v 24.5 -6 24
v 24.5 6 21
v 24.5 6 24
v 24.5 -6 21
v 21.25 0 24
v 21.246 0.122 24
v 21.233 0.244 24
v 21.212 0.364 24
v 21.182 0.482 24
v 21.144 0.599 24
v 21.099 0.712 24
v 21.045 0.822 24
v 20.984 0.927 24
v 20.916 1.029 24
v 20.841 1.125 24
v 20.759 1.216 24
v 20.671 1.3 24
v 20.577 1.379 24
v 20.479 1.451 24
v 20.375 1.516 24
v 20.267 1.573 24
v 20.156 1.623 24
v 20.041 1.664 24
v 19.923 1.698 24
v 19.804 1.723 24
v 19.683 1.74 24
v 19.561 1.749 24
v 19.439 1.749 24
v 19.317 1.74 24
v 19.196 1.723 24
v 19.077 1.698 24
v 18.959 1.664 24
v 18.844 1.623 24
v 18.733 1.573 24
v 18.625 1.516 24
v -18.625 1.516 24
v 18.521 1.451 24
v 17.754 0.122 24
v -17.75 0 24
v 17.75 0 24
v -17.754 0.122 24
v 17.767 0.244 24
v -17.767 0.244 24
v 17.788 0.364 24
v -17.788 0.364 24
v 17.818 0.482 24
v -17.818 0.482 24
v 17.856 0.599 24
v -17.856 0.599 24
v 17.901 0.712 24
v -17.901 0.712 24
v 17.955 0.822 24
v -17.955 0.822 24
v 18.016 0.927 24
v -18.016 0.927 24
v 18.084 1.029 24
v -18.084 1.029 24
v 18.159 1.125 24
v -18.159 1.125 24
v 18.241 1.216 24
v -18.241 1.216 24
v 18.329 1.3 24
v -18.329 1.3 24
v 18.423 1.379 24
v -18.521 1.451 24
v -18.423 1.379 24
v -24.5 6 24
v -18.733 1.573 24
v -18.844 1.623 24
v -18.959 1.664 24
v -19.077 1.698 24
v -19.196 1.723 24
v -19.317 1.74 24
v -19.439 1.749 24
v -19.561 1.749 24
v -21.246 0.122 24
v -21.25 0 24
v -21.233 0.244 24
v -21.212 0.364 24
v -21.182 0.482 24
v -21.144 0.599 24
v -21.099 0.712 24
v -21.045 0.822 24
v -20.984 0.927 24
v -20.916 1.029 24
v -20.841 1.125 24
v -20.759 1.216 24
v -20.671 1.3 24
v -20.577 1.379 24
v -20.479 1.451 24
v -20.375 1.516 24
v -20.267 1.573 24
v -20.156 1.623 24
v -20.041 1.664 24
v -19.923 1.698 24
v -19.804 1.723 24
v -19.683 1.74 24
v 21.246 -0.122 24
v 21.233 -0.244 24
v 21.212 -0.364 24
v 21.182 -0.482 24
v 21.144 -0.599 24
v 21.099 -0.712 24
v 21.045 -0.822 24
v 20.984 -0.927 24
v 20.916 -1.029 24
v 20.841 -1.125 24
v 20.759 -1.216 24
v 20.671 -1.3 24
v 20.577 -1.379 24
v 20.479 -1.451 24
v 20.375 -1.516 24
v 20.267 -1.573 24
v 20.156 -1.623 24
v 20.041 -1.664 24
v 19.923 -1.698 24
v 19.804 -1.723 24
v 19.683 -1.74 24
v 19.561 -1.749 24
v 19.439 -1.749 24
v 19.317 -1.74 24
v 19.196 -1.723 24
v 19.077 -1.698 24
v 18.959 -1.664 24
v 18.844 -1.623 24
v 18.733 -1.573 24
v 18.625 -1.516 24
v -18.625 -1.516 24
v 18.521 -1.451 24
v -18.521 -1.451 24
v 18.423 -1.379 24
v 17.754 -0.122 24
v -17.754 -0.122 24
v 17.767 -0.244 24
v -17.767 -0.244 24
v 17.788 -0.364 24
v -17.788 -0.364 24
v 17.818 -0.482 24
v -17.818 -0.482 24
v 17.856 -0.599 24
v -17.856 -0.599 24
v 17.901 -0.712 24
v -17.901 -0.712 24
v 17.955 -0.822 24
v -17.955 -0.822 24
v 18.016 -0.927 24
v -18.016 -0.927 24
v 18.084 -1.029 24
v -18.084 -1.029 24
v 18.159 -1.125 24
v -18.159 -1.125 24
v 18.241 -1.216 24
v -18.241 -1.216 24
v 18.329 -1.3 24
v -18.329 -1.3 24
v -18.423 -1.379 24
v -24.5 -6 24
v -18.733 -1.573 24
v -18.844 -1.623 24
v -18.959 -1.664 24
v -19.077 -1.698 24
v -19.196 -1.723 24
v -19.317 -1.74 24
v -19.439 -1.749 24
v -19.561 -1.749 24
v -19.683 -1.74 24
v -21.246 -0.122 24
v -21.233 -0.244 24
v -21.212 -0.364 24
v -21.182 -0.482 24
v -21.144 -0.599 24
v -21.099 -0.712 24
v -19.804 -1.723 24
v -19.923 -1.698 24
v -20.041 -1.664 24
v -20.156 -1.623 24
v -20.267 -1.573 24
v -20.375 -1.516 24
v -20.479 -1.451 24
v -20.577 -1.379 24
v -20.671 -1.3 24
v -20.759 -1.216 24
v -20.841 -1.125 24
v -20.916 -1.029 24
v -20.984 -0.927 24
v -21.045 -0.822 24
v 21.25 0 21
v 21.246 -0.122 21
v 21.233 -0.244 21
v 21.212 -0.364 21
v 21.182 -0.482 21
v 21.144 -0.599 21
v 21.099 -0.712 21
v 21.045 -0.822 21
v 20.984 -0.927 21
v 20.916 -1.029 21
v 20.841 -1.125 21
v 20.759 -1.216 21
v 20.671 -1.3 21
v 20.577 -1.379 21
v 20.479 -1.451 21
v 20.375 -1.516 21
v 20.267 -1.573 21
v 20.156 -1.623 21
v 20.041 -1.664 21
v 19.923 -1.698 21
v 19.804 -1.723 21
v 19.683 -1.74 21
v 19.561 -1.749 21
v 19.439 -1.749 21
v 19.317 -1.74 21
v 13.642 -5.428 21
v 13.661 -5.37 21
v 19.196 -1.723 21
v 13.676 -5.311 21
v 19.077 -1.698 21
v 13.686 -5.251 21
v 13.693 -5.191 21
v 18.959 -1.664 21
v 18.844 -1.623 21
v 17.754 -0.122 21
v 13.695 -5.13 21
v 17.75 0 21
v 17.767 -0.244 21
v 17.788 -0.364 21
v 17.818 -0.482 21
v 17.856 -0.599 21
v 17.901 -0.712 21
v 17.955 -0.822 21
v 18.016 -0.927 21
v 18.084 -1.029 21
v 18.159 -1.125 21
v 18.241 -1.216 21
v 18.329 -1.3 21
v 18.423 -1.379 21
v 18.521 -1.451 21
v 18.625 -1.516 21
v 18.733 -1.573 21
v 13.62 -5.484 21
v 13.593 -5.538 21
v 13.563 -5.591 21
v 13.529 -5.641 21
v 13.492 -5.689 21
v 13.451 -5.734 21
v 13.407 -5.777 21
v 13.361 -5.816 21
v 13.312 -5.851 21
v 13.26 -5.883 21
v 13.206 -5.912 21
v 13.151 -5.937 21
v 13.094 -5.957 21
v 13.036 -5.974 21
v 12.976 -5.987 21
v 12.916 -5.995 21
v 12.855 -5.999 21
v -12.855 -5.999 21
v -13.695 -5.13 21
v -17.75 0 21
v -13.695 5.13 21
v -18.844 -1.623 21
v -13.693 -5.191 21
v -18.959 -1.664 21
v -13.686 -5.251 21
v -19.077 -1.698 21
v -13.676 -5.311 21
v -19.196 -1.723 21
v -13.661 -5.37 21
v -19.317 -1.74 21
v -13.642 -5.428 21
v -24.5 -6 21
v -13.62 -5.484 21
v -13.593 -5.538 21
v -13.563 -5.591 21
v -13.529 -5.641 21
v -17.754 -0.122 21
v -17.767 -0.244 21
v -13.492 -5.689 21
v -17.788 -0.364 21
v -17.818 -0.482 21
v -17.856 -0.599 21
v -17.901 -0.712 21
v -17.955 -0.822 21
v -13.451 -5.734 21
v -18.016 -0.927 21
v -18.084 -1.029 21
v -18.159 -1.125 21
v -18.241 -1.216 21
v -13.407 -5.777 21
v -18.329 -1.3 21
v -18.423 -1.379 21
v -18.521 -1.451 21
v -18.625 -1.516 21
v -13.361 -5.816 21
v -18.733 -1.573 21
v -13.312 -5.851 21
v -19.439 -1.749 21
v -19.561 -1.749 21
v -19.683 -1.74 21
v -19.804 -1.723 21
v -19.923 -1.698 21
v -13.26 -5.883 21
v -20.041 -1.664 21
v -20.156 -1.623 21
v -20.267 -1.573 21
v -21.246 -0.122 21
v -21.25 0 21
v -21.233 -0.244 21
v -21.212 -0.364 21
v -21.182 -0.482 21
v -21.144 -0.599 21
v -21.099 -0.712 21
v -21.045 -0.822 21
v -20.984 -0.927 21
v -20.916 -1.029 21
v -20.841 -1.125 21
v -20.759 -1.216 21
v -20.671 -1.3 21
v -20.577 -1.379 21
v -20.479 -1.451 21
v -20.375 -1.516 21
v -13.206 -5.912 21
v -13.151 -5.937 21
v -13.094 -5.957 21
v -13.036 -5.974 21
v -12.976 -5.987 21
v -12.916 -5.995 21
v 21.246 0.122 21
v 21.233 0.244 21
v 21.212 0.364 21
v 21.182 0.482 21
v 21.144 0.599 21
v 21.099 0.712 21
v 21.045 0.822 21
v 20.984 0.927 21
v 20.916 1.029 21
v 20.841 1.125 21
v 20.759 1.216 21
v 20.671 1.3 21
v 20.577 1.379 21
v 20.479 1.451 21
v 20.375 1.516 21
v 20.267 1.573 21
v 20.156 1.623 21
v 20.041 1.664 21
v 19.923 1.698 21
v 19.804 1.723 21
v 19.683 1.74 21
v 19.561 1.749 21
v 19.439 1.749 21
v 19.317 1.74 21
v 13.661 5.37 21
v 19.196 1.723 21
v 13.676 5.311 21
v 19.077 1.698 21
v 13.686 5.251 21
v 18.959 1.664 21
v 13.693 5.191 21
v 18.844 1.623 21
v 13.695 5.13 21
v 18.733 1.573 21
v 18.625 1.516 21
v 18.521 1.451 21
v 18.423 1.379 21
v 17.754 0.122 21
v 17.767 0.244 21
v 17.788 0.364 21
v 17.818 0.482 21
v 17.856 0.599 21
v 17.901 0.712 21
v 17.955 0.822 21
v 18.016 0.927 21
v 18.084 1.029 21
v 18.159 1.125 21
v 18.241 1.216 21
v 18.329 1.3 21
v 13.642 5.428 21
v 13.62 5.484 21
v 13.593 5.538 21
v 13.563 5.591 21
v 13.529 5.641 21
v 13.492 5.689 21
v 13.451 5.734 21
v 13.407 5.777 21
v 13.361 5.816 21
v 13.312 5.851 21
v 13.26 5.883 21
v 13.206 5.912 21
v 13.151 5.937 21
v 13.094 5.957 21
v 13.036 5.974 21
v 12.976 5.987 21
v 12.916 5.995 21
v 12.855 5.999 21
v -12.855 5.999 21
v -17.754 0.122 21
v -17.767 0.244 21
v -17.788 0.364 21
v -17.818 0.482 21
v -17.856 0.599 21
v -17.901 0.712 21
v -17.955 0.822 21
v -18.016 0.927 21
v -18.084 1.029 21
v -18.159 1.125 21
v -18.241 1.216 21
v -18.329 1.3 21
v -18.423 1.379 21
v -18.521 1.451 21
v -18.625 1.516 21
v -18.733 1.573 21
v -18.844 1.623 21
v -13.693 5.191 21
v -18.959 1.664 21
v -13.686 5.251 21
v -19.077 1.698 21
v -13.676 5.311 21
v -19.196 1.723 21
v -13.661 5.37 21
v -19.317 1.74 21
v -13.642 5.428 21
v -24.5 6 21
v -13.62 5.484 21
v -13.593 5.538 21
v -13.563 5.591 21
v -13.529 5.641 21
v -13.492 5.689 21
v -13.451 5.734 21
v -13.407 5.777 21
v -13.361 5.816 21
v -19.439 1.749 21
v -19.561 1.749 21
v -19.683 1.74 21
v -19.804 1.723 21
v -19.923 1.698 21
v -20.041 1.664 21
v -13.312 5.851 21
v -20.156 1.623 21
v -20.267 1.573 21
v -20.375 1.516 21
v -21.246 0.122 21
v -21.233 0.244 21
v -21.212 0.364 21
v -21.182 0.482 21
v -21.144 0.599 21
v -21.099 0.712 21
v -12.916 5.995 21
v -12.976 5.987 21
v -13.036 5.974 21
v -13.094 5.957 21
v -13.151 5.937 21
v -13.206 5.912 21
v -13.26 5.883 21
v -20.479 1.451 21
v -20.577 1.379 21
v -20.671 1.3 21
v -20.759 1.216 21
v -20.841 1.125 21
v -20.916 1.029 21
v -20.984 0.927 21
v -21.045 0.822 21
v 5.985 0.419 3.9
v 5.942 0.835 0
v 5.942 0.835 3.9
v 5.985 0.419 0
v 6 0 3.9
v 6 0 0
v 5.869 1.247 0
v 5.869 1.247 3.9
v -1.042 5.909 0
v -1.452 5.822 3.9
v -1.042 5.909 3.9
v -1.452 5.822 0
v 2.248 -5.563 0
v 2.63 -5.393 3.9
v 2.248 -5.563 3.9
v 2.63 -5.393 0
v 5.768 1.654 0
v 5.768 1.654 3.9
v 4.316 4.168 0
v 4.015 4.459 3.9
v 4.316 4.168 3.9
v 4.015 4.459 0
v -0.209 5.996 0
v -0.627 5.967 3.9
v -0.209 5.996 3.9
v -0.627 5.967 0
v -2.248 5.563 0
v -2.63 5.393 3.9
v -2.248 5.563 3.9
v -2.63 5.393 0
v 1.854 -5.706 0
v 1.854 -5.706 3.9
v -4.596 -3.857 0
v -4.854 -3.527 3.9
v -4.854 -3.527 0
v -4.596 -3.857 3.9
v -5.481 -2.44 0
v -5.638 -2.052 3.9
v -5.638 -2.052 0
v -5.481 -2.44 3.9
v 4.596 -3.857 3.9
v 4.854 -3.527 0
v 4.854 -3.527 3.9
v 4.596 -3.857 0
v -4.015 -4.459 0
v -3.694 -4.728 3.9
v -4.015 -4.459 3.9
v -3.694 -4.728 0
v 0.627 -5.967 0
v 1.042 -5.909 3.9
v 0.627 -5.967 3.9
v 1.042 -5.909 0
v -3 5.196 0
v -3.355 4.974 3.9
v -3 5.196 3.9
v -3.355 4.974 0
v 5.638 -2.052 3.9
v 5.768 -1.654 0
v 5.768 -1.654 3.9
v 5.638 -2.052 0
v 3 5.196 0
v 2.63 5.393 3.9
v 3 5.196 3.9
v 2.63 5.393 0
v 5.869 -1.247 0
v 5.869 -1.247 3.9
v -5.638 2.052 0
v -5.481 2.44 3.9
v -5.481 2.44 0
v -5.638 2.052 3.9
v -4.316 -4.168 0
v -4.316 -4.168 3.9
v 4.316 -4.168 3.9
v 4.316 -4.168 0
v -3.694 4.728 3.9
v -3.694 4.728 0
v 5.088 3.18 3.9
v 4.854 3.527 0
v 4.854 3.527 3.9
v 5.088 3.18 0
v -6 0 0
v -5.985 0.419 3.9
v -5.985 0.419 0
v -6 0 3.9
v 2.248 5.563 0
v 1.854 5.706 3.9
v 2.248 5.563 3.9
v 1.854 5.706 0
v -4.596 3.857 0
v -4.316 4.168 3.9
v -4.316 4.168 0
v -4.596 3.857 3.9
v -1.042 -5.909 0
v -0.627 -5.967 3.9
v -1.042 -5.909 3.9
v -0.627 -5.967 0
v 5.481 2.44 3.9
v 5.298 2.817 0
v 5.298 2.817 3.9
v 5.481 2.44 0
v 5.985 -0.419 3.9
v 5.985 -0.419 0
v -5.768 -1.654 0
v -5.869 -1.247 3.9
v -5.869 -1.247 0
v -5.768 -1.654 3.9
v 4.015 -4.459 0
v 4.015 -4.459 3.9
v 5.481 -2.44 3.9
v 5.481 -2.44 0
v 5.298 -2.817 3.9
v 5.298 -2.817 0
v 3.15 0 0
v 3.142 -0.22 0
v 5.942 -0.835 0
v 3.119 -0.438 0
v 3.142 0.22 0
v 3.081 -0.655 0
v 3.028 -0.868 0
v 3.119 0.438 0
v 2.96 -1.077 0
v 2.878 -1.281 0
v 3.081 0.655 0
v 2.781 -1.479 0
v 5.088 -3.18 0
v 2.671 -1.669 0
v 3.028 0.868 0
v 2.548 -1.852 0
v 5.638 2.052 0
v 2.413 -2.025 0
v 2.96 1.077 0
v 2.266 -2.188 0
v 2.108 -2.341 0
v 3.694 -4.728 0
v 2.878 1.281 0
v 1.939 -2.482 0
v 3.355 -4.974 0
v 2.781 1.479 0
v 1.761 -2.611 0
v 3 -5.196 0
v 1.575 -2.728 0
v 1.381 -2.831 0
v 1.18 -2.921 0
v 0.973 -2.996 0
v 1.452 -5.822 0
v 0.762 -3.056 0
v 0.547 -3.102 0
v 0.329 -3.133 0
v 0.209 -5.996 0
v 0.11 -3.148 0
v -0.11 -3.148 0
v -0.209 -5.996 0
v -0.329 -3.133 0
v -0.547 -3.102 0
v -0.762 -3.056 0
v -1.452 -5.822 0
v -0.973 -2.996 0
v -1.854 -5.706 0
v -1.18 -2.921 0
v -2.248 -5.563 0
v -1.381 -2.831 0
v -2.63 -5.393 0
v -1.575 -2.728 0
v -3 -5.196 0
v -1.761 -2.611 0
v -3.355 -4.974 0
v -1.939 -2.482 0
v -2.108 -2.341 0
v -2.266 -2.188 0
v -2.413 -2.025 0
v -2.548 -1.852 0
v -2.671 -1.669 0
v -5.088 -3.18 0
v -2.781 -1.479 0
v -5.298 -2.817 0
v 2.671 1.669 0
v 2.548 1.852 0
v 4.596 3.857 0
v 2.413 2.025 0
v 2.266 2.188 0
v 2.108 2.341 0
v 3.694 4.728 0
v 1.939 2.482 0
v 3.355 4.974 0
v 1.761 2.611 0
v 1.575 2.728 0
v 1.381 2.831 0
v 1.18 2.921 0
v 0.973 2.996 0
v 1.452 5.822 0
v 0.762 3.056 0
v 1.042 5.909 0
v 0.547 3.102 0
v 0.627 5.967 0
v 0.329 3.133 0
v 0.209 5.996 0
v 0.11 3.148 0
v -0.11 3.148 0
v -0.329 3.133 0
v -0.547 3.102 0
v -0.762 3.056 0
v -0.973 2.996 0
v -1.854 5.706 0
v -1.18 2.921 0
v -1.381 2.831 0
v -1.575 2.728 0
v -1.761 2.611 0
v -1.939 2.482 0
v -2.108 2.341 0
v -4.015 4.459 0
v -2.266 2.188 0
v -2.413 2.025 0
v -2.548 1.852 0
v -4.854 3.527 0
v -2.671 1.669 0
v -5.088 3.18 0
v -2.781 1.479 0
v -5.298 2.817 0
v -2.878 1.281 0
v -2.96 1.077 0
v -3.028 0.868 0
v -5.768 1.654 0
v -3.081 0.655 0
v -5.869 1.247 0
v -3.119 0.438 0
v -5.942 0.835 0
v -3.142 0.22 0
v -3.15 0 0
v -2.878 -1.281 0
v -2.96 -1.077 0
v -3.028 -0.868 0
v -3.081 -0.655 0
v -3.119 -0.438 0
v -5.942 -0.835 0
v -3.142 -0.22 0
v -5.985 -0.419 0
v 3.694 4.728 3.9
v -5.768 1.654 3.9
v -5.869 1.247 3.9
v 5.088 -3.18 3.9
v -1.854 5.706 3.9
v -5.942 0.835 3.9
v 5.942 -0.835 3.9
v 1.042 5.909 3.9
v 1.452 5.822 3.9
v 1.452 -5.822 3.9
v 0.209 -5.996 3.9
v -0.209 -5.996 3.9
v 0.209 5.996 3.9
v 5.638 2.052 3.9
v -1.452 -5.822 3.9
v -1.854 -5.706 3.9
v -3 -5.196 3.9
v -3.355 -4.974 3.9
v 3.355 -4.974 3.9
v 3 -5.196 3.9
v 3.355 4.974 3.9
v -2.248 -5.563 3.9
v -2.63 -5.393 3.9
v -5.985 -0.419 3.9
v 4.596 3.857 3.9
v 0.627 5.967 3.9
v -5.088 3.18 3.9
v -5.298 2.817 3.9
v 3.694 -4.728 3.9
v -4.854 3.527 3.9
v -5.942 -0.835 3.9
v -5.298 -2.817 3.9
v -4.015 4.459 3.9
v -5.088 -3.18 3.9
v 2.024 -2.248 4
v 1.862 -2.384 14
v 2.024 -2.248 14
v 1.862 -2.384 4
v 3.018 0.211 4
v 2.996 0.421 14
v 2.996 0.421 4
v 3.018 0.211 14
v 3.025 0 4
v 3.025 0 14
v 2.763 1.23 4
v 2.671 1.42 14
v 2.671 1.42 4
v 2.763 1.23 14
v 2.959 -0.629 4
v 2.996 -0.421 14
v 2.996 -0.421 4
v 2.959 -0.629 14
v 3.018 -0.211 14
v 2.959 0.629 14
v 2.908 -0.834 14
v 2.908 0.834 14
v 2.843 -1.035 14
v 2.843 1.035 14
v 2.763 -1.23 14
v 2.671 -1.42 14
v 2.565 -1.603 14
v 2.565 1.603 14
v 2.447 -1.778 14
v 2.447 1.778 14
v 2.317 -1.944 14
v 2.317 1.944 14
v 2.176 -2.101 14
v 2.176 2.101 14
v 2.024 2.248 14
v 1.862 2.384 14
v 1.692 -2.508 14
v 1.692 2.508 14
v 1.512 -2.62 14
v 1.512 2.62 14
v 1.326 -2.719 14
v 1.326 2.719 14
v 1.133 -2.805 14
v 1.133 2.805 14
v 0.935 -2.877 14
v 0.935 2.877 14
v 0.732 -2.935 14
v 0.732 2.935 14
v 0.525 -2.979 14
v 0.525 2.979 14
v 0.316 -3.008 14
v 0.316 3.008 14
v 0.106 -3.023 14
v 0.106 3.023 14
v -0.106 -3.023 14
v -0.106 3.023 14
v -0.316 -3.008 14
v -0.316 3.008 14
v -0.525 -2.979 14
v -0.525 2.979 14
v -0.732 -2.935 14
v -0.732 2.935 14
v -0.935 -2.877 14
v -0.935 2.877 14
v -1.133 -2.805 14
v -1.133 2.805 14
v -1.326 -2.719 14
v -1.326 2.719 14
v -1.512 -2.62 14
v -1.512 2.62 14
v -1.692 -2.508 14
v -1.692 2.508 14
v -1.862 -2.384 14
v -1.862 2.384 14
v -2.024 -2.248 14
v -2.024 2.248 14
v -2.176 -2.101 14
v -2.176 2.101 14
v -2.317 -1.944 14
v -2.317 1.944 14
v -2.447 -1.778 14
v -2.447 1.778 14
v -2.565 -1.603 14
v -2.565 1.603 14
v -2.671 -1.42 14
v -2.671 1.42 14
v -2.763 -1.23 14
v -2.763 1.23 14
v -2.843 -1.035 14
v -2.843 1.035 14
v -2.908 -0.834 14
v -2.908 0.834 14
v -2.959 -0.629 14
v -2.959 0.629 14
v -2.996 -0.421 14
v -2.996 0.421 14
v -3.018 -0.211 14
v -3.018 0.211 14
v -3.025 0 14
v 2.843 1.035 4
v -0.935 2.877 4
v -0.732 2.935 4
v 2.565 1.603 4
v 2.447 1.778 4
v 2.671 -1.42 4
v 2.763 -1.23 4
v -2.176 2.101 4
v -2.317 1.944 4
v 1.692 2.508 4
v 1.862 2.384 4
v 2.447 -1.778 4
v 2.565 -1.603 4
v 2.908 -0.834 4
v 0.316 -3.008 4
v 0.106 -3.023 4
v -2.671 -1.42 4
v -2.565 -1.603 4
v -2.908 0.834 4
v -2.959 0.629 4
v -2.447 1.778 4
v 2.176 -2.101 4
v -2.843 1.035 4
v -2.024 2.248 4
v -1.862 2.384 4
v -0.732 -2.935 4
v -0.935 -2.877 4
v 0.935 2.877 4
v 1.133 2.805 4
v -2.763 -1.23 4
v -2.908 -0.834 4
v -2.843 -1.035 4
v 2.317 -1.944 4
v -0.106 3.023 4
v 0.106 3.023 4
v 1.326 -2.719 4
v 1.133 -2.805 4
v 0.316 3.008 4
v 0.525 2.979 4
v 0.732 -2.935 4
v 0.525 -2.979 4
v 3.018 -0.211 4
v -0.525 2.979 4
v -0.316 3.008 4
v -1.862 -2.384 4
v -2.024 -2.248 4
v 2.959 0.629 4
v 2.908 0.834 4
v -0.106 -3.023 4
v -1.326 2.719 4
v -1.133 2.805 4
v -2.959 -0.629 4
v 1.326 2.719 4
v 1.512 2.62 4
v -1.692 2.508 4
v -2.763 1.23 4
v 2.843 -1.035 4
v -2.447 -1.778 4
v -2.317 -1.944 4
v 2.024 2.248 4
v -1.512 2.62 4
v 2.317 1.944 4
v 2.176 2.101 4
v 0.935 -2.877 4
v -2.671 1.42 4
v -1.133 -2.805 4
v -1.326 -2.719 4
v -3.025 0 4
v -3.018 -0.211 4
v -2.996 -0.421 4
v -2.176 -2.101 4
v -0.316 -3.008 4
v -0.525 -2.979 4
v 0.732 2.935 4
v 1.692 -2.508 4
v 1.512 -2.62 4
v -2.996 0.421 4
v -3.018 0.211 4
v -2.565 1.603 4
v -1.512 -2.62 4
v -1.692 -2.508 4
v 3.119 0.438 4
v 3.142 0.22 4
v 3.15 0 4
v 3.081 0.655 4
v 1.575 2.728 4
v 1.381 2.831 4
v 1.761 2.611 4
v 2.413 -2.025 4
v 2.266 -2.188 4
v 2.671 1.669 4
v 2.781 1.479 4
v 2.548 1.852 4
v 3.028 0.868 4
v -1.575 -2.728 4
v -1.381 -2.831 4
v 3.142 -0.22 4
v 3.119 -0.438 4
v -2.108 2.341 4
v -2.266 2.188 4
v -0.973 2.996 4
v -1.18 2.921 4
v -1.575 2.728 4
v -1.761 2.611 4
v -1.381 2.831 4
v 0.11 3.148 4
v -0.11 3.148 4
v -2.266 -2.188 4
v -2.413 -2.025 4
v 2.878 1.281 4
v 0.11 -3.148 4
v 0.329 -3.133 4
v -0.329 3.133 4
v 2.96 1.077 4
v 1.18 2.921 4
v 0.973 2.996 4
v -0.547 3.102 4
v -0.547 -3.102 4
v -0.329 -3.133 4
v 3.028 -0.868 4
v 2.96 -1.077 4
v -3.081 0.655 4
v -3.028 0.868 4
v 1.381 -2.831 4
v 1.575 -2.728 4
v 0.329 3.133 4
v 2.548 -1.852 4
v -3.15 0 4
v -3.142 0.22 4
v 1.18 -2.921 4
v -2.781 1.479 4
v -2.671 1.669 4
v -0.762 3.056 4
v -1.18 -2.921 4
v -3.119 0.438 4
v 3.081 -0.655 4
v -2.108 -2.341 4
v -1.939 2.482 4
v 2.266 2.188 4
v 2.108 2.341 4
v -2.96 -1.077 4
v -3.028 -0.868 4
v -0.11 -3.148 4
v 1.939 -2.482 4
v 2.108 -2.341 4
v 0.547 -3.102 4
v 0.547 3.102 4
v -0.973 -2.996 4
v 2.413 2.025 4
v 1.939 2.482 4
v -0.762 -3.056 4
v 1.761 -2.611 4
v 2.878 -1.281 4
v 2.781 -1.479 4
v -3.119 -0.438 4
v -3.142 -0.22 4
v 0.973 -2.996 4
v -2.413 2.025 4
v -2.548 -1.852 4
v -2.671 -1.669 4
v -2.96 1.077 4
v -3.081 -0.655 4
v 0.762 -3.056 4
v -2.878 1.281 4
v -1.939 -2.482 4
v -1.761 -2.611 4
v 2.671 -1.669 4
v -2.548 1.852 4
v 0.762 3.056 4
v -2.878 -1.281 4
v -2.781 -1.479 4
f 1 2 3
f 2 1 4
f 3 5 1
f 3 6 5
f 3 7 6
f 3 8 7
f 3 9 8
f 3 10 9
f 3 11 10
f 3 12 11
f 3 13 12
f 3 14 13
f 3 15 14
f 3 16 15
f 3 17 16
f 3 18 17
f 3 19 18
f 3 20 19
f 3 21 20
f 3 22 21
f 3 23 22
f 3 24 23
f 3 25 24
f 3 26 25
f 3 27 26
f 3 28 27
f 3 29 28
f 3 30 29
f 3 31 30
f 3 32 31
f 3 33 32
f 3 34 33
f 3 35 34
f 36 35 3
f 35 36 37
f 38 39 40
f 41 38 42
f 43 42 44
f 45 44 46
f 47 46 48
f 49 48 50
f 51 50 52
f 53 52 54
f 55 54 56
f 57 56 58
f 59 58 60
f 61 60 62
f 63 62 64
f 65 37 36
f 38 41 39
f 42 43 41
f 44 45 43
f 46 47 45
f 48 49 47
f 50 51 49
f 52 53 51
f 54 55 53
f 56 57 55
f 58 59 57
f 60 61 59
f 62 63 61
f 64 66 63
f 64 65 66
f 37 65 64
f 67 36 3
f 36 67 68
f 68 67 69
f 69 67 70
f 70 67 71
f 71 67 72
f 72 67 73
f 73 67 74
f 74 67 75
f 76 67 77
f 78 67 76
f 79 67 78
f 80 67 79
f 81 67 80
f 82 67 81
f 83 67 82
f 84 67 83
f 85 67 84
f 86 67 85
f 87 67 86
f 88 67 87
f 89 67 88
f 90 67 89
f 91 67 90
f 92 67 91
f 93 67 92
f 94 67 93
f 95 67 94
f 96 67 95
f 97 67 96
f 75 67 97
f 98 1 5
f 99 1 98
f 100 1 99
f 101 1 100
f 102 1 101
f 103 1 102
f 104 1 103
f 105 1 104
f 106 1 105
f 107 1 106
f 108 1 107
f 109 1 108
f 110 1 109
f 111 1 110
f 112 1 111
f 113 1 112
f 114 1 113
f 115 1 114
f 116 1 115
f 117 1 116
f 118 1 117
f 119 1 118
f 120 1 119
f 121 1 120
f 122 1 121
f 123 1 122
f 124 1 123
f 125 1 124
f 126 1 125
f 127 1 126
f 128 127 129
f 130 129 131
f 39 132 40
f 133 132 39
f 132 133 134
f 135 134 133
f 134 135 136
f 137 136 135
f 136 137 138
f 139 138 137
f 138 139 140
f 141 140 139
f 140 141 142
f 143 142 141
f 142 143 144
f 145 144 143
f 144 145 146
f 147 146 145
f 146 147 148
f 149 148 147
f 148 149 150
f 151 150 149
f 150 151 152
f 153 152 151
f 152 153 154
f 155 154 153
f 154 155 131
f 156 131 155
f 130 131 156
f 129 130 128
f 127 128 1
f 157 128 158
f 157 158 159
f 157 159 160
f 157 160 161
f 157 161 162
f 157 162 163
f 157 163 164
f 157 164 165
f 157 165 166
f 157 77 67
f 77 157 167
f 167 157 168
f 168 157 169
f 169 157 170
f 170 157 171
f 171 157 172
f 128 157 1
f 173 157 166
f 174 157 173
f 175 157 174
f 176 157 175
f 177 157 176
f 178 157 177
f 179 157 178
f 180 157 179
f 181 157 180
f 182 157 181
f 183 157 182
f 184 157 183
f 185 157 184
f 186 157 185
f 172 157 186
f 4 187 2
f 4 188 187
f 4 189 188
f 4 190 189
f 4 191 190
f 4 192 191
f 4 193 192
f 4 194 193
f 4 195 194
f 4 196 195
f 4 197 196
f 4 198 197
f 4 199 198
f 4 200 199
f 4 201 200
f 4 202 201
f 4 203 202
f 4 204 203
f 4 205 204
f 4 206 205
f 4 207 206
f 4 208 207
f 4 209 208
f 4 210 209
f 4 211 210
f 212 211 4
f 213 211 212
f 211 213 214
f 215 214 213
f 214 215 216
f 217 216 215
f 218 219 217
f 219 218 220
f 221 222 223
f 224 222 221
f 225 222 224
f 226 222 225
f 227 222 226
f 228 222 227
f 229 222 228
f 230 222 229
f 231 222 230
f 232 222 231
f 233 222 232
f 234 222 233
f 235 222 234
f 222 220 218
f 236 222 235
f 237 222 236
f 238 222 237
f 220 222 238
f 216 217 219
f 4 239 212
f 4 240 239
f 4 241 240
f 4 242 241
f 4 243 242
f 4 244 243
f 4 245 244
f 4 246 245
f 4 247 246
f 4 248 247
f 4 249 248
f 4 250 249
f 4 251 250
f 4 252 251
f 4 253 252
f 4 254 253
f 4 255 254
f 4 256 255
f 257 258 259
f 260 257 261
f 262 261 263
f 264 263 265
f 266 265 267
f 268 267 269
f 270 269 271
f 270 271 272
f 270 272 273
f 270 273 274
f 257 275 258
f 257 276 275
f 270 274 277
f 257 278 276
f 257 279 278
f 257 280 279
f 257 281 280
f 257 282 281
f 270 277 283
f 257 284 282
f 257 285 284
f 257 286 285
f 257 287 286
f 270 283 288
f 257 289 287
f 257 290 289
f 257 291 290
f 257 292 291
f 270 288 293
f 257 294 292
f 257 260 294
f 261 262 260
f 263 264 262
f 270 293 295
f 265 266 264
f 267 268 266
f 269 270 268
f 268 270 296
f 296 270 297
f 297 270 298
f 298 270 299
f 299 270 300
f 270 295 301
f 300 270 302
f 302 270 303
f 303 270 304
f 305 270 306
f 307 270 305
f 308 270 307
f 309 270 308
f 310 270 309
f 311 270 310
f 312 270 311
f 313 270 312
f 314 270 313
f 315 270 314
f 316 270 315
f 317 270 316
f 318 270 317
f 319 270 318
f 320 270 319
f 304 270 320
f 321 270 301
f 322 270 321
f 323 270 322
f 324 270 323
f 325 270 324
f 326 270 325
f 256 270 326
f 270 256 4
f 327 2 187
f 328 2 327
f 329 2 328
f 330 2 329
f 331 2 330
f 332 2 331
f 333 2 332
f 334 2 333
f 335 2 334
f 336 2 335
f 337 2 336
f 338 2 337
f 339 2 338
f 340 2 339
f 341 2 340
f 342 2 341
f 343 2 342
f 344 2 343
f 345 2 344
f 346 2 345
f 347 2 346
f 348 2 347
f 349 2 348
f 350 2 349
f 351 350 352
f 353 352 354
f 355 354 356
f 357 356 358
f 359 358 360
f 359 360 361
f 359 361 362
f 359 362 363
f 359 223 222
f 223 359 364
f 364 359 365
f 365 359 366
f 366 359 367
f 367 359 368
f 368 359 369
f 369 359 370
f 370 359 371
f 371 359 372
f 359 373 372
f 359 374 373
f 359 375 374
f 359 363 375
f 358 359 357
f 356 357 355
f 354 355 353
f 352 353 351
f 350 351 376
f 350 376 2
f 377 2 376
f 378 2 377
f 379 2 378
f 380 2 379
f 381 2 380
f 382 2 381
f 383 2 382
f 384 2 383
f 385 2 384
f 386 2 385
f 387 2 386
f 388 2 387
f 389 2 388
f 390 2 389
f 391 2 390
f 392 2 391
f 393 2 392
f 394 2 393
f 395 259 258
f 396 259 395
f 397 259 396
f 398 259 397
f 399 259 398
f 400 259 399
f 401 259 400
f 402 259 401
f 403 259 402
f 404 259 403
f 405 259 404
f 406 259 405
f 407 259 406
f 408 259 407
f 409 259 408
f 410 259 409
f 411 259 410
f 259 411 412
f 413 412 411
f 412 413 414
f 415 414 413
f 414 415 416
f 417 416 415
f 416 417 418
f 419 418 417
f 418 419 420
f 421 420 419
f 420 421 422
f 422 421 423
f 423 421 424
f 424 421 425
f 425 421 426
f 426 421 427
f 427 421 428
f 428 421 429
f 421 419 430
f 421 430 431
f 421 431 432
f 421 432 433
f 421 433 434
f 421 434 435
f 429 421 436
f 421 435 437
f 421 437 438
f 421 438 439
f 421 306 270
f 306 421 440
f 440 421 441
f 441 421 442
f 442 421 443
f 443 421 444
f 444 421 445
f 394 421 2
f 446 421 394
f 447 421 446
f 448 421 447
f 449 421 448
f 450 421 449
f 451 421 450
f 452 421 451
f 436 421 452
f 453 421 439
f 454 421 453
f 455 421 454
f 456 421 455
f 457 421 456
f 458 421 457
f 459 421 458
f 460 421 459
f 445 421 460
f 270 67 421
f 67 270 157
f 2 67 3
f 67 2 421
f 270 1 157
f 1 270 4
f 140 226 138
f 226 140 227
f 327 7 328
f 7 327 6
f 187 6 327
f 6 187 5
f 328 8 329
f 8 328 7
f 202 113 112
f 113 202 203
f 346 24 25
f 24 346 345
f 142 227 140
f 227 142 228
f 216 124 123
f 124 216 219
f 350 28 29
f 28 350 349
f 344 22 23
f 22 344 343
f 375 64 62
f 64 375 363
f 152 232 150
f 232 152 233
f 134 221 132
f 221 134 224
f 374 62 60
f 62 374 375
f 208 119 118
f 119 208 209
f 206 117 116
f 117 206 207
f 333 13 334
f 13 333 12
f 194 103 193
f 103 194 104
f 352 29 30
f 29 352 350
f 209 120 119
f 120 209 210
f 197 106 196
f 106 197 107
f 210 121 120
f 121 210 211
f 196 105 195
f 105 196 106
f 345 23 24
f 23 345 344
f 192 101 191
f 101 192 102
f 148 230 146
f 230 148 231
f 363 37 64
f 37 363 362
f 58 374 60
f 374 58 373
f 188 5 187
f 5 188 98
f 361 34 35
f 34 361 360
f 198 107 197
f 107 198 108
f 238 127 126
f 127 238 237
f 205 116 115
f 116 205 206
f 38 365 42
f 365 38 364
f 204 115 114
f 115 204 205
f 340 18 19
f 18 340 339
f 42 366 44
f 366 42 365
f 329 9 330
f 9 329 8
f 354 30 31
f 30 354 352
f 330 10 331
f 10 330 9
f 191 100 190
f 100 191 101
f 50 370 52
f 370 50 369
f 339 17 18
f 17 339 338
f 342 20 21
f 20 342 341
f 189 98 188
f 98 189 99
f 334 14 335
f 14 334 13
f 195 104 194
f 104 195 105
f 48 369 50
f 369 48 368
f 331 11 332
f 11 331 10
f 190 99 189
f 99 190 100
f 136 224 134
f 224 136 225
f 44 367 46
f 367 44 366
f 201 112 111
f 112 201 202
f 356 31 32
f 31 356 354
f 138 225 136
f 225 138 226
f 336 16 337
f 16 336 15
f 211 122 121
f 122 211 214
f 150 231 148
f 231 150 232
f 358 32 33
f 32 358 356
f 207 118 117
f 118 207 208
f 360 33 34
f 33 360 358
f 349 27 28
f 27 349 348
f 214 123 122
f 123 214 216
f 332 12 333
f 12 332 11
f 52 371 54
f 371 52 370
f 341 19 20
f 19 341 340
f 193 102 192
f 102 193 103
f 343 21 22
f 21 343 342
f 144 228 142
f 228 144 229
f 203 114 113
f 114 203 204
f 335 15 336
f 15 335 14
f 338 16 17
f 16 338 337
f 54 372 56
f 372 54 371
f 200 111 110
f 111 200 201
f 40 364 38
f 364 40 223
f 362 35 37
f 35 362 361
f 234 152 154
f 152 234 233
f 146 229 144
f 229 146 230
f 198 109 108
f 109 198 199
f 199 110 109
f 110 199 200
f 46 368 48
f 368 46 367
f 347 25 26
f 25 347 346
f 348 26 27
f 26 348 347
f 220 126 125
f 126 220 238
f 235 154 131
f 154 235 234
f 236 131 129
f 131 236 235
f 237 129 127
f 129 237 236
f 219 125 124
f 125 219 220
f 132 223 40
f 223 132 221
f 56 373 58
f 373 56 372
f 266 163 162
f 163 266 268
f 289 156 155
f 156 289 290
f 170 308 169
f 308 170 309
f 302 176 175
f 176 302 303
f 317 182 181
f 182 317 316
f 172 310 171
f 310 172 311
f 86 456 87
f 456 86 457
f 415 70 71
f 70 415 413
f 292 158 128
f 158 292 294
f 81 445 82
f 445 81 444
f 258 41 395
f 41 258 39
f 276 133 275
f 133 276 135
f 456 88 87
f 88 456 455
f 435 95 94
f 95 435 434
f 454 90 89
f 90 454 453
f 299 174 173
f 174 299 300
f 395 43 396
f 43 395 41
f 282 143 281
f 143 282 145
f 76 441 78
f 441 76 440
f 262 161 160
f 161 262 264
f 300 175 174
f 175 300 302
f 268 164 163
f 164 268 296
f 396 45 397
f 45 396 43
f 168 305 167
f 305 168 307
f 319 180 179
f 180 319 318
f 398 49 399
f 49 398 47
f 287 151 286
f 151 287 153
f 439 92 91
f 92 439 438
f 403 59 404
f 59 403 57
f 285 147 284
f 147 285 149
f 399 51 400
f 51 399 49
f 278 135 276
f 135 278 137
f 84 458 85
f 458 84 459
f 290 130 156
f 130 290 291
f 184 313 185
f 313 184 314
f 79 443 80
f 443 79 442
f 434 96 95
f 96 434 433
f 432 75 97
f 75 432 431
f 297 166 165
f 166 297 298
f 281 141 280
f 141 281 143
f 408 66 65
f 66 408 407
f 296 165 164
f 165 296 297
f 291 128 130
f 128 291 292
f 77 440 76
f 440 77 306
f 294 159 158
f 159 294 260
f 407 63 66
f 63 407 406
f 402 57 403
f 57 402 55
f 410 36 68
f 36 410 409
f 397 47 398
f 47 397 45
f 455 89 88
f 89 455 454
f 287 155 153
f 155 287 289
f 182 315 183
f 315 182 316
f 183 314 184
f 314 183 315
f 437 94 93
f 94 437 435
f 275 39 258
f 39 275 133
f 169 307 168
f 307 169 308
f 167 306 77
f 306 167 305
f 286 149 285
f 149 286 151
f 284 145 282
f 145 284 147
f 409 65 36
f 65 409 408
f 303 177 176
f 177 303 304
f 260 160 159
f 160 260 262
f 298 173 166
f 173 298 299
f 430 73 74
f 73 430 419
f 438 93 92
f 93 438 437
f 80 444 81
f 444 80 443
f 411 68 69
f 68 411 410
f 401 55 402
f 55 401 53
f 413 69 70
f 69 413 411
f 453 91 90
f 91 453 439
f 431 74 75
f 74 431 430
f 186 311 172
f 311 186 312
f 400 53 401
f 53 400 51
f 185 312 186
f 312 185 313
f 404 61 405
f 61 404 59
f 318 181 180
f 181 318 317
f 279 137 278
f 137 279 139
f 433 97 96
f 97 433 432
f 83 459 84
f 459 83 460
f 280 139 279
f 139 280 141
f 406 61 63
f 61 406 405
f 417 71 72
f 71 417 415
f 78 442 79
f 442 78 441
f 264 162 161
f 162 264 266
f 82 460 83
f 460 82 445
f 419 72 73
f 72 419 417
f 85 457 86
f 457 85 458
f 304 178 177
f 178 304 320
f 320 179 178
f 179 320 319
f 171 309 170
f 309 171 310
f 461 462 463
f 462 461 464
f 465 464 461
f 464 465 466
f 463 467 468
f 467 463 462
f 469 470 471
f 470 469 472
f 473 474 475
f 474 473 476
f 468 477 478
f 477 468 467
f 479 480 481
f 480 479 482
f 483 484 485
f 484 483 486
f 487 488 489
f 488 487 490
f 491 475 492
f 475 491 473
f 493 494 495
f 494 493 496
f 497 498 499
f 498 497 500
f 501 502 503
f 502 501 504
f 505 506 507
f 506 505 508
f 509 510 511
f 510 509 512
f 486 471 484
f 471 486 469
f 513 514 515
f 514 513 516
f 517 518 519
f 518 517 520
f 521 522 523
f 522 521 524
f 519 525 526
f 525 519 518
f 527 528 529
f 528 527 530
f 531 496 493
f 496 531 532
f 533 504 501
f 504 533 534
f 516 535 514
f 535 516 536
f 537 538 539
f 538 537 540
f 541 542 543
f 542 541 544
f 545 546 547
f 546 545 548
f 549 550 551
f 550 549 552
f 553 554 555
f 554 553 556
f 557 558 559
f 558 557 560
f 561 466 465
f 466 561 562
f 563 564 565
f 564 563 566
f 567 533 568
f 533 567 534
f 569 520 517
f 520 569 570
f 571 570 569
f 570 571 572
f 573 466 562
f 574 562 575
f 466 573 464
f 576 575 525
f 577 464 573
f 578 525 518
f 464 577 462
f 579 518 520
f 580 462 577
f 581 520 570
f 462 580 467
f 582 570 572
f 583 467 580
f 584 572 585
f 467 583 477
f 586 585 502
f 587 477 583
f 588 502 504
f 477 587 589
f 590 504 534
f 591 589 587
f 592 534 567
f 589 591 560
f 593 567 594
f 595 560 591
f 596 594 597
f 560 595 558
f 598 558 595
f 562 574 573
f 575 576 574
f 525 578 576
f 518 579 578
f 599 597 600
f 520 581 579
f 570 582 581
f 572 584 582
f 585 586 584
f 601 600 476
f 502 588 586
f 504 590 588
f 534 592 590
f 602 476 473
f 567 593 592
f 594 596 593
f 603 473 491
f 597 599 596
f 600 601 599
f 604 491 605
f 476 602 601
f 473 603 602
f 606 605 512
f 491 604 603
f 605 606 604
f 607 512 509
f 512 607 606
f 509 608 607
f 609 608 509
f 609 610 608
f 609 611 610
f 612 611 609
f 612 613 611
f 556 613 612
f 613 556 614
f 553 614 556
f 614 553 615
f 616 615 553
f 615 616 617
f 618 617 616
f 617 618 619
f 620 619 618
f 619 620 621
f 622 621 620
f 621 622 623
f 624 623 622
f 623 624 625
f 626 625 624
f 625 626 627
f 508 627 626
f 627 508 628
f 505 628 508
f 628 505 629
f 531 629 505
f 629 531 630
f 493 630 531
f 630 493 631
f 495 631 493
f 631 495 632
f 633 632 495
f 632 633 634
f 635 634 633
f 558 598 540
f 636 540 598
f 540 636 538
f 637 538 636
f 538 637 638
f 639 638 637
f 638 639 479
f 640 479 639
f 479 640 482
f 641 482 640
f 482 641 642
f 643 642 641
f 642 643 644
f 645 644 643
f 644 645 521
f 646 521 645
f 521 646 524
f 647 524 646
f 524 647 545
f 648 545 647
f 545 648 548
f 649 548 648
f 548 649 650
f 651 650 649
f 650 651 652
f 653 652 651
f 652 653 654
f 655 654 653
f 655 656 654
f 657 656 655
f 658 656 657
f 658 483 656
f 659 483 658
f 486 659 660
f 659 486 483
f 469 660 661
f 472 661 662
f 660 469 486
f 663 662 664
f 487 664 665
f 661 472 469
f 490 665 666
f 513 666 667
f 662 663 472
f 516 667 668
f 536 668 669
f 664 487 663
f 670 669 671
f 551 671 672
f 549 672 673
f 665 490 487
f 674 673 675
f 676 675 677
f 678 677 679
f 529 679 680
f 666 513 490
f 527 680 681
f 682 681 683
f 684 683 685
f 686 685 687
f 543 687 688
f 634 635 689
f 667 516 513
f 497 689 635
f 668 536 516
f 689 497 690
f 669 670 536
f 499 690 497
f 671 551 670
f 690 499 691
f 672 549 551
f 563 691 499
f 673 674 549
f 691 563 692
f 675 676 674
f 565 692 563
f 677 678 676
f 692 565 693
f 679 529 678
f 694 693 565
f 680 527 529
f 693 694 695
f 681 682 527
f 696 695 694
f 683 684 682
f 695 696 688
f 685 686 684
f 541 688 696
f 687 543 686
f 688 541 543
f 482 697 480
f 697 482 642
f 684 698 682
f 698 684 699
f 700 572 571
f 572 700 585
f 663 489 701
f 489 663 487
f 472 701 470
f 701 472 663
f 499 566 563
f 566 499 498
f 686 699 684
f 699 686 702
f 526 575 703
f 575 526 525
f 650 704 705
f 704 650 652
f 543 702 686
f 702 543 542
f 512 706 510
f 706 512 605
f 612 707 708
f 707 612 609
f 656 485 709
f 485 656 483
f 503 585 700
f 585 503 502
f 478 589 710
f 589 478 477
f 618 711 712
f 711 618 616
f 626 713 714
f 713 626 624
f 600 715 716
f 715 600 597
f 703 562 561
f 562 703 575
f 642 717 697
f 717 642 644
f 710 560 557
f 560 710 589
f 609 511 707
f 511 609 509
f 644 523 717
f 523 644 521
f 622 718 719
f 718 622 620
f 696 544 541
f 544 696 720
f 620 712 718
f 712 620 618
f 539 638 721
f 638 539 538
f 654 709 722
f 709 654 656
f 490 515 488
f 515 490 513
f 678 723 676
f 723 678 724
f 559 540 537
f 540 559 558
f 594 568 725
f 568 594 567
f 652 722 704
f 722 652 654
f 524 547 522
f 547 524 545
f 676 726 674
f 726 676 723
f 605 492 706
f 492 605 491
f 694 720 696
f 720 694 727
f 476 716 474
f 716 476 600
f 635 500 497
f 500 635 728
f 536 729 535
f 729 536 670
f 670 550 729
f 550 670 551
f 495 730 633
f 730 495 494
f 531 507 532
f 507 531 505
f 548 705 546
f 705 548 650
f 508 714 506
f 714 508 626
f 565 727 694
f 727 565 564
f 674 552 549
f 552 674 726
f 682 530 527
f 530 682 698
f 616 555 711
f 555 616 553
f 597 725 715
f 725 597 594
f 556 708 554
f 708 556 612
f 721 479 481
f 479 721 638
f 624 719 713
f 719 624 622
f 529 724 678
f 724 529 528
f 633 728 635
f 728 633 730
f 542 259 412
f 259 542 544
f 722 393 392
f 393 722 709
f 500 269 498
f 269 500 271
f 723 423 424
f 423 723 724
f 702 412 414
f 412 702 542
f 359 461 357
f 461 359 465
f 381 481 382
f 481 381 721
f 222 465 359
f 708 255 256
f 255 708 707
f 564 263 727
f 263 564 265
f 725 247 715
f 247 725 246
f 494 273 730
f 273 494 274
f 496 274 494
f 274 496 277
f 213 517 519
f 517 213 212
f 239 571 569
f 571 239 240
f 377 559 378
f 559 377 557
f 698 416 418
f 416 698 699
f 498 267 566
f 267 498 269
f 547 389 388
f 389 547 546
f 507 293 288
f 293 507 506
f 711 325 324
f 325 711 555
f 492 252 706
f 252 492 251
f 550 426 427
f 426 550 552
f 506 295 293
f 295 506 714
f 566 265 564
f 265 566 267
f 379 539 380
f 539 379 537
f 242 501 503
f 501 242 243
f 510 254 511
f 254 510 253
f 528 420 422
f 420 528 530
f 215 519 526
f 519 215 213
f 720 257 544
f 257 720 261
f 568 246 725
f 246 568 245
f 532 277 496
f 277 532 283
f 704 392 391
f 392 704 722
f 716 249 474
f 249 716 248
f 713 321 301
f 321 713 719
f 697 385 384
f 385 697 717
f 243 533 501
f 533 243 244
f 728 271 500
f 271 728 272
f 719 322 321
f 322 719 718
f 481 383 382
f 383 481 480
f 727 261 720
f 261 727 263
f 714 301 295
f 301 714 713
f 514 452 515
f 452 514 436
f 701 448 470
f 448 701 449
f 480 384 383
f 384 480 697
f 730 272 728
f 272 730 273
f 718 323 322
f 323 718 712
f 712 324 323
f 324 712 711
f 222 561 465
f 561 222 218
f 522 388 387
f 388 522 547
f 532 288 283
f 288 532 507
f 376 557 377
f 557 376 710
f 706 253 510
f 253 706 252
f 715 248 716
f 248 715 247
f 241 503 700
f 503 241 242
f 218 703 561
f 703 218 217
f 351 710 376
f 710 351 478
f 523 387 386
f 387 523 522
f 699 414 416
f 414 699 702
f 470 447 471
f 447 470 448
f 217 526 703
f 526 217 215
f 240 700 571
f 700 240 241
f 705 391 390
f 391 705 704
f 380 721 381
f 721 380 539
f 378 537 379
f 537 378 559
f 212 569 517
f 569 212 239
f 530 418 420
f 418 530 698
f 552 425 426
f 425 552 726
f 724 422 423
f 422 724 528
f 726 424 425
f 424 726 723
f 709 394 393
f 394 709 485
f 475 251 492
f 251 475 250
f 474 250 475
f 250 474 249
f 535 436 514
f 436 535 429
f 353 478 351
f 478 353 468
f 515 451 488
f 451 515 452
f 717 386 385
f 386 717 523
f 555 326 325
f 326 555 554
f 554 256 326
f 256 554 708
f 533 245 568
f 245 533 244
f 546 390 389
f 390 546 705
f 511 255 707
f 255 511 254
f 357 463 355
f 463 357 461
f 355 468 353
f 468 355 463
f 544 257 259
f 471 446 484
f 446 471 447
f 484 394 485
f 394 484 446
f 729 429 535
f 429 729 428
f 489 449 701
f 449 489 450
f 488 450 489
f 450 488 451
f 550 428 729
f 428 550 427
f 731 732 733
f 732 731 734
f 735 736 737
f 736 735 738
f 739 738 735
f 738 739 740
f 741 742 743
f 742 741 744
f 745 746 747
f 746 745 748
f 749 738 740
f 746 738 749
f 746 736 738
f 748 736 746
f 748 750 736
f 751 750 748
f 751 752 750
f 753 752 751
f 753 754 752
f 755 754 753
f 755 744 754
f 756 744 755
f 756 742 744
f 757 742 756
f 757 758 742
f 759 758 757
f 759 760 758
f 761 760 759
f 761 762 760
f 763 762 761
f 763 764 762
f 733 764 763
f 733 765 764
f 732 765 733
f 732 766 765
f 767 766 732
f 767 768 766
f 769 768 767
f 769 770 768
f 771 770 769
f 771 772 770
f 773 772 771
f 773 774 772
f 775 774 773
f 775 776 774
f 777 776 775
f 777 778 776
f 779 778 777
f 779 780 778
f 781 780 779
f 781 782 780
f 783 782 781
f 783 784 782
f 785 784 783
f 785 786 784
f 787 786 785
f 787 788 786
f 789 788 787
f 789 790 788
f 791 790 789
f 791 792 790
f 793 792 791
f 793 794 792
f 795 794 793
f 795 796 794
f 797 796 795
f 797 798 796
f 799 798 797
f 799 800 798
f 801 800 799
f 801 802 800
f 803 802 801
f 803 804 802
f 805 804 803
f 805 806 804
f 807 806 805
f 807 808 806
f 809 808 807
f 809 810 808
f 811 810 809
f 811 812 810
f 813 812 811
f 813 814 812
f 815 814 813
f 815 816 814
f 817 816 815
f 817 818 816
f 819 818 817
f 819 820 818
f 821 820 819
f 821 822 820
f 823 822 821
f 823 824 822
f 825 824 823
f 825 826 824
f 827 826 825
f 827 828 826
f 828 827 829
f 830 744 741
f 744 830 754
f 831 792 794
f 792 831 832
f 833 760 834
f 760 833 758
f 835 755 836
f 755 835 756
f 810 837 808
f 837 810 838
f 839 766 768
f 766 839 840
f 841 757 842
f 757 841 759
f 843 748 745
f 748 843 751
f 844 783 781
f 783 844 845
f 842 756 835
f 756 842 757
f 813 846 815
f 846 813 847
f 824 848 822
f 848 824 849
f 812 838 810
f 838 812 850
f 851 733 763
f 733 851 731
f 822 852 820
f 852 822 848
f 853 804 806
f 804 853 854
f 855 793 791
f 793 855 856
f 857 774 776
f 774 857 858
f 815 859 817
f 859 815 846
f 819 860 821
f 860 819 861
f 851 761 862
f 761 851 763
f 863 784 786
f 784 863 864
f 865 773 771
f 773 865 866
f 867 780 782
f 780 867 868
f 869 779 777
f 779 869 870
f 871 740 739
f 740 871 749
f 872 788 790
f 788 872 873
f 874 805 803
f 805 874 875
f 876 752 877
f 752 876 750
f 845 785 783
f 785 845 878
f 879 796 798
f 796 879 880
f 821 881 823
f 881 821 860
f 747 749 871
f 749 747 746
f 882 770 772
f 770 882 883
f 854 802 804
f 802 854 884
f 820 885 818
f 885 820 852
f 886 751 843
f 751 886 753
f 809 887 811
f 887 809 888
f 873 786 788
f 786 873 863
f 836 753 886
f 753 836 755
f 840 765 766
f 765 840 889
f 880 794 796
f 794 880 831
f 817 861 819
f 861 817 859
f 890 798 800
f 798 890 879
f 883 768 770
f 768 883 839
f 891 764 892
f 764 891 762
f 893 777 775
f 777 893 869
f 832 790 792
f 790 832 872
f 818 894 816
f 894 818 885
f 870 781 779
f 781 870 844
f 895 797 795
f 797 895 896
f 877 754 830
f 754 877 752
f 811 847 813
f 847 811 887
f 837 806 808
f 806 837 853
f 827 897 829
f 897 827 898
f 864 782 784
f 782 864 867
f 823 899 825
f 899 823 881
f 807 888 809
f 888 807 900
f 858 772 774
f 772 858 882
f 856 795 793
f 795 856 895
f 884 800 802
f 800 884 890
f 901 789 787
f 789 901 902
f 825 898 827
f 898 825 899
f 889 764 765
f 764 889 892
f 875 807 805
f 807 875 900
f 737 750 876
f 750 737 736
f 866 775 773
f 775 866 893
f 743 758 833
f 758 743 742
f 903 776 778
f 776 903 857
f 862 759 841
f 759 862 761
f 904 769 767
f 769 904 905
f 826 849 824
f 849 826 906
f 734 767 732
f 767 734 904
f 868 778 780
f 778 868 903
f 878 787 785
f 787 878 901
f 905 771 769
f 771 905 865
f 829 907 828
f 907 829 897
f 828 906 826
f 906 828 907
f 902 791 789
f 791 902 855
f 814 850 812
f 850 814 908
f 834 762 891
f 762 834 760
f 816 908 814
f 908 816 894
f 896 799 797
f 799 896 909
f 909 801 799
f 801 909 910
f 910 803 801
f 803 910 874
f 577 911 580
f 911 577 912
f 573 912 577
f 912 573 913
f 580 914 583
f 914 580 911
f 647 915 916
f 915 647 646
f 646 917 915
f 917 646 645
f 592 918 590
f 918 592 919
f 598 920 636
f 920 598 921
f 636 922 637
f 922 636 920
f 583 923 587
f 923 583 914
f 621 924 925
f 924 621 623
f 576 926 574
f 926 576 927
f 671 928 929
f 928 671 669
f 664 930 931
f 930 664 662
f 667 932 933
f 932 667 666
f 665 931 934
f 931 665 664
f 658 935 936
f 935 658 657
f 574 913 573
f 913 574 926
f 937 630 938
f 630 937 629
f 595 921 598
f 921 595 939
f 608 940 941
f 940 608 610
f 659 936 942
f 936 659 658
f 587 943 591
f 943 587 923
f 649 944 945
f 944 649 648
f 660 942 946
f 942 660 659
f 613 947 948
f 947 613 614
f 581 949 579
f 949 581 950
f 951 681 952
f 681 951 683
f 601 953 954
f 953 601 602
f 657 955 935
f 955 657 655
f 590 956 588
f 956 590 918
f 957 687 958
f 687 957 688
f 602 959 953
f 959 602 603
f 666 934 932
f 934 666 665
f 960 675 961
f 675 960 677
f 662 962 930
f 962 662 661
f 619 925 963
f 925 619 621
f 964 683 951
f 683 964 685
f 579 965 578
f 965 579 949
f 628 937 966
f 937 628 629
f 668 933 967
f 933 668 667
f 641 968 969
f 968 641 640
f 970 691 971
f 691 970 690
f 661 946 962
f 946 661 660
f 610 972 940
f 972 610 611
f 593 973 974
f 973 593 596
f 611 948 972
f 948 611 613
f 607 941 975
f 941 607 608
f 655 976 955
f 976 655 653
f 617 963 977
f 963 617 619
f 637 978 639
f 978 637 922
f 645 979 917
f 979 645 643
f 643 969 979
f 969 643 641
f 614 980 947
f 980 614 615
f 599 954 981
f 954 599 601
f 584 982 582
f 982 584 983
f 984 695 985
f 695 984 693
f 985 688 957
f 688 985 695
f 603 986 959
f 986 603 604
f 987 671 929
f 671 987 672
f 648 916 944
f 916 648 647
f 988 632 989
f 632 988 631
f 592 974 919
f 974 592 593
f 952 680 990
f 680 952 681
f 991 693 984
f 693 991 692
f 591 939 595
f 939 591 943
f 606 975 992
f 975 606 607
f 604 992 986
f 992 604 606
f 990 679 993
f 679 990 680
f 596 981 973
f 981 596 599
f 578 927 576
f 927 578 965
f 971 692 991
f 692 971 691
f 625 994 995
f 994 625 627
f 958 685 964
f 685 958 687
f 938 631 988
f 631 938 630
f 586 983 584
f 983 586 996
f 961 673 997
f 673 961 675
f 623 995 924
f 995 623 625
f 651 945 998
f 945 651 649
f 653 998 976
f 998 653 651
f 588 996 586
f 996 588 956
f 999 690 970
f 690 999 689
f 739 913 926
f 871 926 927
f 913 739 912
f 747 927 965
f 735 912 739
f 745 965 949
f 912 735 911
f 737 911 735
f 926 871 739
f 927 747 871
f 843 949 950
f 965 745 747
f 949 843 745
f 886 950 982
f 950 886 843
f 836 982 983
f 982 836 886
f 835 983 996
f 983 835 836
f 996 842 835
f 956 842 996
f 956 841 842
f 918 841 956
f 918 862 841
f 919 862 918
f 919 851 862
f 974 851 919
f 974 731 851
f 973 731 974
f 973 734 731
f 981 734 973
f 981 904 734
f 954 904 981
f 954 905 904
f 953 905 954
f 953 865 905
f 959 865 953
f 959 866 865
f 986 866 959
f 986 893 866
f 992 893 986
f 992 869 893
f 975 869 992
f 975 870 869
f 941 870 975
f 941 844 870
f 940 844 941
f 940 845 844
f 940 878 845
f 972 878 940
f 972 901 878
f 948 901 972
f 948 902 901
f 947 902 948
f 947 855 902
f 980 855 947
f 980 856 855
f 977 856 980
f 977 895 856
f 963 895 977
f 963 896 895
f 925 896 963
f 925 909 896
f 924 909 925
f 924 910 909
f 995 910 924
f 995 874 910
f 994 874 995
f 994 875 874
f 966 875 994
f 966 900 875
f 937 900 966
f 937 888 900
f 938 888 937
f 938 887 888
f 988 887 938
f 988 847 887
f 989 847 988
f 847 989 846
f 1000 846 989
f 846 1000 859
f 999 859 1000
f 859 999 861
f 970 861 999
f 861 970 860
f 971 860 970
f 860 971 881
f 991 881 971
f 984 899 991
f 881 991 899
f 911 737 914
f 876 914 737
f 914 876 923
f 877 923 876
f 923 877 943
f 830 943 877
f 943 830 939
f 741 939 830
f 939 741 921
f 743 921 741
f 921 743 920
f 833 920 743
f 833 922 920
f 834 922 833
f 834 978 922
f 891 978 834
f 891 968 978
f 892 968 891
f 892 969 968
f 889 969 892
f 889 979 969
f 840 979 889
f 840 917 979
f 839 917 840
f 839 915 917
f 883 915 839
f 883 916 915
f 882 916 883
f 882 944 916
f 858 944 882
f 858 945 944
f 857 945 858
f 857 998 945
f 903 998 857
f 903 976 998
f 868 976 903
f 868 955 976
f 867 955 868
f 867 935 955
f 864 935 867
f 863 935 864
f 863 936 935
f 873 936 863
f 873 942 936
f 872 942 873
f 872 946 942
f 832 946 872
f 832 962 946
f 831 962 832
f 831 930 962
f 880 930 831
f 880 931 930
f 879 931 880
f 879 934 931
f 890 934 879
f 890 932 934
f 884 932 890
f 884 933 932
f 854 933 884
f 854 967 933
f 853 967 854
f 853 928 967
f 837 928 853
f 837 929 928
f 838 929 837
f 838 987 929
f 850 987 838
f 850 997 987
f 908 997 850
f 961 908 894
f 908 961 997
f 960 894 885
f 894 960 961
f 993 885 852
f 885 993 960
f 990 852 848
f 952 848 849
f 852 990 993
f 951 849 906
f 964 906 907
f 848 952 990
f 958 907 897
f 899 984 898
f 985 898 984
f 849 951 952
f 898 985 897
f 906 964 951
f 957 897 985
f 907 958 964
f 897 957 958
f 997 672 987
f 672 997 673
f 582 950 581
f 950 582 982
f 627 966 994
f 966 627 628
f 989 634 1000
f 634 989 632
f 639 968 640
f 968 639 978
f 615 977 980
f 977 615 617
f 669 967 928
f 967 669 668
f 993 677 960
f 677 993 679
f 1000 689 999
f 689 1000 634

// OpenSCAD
$fn=90;

outterDiameter = 12;
overallHeight = 24;
difference(){
	union(){
		cylinder(h=overallHeight, d=outterDiameter);
		transitionHeight=4;
		translate([0,0,overallHeight-0.1])
			hull(){
				translate([0, 0, -20])
					cylinder(h=0.1,d=outterDiameter);
				translate([-2.5*outterDiameter/2, -outterDiameter/2, 0])
					cube([2.5*outterDiameter, outterDiameter, 0.1]);
					//cylinder(h=0.1, d=outterDiameter);
			}
	}
	#cylinder(h=14, d=6.05);
	#cylinder(h=4, d=6.3);
}

screwHoleDiameter = 3.5;
cubeLength = 30+2*screwHoleDiameter+10+2;
cubeWidth = outterDiameter;
cubeHeight = 3;
difference(){
	translate([-0.5*cubeLength, -0.5*cubeWidth, overallHeight-cubeHeight])
		cube([cubeLength, cubeWidth, cubeHeight]);
	translate([0.5*cubeLength-5, 0, overallHeight-cubeHeight])
		#cylinder(h=cubeHeight, d=screwHoleDiameter);
	translate([-0.5*cubeLength+5, 0, overallHeight-cubeHeight])
		#cylinder(h=cubeHeight, d=screwHoleDiameter);
}

/*transitionHeight=4;
translate([0,0,overallHeight-0.1])
	hull(){
		translate([0, 0, -20])
			cylinder(h=0.1,d=outterDiameter);
		translate([-2.5*outterDiameter/2, -outterDiameter/2, 0])
			cube([2.5*outterDiameter, outterDiameter, 0.1]);
			//cylinder(h=0.1, d=outterDiameter);
	}*/
/*translate([0,0,overallHeight-transitionHeight-cubeHeight])
	scale([2, 1, 1])
		cylinder(h=transitionHeight, d=outterDiameter);*/
